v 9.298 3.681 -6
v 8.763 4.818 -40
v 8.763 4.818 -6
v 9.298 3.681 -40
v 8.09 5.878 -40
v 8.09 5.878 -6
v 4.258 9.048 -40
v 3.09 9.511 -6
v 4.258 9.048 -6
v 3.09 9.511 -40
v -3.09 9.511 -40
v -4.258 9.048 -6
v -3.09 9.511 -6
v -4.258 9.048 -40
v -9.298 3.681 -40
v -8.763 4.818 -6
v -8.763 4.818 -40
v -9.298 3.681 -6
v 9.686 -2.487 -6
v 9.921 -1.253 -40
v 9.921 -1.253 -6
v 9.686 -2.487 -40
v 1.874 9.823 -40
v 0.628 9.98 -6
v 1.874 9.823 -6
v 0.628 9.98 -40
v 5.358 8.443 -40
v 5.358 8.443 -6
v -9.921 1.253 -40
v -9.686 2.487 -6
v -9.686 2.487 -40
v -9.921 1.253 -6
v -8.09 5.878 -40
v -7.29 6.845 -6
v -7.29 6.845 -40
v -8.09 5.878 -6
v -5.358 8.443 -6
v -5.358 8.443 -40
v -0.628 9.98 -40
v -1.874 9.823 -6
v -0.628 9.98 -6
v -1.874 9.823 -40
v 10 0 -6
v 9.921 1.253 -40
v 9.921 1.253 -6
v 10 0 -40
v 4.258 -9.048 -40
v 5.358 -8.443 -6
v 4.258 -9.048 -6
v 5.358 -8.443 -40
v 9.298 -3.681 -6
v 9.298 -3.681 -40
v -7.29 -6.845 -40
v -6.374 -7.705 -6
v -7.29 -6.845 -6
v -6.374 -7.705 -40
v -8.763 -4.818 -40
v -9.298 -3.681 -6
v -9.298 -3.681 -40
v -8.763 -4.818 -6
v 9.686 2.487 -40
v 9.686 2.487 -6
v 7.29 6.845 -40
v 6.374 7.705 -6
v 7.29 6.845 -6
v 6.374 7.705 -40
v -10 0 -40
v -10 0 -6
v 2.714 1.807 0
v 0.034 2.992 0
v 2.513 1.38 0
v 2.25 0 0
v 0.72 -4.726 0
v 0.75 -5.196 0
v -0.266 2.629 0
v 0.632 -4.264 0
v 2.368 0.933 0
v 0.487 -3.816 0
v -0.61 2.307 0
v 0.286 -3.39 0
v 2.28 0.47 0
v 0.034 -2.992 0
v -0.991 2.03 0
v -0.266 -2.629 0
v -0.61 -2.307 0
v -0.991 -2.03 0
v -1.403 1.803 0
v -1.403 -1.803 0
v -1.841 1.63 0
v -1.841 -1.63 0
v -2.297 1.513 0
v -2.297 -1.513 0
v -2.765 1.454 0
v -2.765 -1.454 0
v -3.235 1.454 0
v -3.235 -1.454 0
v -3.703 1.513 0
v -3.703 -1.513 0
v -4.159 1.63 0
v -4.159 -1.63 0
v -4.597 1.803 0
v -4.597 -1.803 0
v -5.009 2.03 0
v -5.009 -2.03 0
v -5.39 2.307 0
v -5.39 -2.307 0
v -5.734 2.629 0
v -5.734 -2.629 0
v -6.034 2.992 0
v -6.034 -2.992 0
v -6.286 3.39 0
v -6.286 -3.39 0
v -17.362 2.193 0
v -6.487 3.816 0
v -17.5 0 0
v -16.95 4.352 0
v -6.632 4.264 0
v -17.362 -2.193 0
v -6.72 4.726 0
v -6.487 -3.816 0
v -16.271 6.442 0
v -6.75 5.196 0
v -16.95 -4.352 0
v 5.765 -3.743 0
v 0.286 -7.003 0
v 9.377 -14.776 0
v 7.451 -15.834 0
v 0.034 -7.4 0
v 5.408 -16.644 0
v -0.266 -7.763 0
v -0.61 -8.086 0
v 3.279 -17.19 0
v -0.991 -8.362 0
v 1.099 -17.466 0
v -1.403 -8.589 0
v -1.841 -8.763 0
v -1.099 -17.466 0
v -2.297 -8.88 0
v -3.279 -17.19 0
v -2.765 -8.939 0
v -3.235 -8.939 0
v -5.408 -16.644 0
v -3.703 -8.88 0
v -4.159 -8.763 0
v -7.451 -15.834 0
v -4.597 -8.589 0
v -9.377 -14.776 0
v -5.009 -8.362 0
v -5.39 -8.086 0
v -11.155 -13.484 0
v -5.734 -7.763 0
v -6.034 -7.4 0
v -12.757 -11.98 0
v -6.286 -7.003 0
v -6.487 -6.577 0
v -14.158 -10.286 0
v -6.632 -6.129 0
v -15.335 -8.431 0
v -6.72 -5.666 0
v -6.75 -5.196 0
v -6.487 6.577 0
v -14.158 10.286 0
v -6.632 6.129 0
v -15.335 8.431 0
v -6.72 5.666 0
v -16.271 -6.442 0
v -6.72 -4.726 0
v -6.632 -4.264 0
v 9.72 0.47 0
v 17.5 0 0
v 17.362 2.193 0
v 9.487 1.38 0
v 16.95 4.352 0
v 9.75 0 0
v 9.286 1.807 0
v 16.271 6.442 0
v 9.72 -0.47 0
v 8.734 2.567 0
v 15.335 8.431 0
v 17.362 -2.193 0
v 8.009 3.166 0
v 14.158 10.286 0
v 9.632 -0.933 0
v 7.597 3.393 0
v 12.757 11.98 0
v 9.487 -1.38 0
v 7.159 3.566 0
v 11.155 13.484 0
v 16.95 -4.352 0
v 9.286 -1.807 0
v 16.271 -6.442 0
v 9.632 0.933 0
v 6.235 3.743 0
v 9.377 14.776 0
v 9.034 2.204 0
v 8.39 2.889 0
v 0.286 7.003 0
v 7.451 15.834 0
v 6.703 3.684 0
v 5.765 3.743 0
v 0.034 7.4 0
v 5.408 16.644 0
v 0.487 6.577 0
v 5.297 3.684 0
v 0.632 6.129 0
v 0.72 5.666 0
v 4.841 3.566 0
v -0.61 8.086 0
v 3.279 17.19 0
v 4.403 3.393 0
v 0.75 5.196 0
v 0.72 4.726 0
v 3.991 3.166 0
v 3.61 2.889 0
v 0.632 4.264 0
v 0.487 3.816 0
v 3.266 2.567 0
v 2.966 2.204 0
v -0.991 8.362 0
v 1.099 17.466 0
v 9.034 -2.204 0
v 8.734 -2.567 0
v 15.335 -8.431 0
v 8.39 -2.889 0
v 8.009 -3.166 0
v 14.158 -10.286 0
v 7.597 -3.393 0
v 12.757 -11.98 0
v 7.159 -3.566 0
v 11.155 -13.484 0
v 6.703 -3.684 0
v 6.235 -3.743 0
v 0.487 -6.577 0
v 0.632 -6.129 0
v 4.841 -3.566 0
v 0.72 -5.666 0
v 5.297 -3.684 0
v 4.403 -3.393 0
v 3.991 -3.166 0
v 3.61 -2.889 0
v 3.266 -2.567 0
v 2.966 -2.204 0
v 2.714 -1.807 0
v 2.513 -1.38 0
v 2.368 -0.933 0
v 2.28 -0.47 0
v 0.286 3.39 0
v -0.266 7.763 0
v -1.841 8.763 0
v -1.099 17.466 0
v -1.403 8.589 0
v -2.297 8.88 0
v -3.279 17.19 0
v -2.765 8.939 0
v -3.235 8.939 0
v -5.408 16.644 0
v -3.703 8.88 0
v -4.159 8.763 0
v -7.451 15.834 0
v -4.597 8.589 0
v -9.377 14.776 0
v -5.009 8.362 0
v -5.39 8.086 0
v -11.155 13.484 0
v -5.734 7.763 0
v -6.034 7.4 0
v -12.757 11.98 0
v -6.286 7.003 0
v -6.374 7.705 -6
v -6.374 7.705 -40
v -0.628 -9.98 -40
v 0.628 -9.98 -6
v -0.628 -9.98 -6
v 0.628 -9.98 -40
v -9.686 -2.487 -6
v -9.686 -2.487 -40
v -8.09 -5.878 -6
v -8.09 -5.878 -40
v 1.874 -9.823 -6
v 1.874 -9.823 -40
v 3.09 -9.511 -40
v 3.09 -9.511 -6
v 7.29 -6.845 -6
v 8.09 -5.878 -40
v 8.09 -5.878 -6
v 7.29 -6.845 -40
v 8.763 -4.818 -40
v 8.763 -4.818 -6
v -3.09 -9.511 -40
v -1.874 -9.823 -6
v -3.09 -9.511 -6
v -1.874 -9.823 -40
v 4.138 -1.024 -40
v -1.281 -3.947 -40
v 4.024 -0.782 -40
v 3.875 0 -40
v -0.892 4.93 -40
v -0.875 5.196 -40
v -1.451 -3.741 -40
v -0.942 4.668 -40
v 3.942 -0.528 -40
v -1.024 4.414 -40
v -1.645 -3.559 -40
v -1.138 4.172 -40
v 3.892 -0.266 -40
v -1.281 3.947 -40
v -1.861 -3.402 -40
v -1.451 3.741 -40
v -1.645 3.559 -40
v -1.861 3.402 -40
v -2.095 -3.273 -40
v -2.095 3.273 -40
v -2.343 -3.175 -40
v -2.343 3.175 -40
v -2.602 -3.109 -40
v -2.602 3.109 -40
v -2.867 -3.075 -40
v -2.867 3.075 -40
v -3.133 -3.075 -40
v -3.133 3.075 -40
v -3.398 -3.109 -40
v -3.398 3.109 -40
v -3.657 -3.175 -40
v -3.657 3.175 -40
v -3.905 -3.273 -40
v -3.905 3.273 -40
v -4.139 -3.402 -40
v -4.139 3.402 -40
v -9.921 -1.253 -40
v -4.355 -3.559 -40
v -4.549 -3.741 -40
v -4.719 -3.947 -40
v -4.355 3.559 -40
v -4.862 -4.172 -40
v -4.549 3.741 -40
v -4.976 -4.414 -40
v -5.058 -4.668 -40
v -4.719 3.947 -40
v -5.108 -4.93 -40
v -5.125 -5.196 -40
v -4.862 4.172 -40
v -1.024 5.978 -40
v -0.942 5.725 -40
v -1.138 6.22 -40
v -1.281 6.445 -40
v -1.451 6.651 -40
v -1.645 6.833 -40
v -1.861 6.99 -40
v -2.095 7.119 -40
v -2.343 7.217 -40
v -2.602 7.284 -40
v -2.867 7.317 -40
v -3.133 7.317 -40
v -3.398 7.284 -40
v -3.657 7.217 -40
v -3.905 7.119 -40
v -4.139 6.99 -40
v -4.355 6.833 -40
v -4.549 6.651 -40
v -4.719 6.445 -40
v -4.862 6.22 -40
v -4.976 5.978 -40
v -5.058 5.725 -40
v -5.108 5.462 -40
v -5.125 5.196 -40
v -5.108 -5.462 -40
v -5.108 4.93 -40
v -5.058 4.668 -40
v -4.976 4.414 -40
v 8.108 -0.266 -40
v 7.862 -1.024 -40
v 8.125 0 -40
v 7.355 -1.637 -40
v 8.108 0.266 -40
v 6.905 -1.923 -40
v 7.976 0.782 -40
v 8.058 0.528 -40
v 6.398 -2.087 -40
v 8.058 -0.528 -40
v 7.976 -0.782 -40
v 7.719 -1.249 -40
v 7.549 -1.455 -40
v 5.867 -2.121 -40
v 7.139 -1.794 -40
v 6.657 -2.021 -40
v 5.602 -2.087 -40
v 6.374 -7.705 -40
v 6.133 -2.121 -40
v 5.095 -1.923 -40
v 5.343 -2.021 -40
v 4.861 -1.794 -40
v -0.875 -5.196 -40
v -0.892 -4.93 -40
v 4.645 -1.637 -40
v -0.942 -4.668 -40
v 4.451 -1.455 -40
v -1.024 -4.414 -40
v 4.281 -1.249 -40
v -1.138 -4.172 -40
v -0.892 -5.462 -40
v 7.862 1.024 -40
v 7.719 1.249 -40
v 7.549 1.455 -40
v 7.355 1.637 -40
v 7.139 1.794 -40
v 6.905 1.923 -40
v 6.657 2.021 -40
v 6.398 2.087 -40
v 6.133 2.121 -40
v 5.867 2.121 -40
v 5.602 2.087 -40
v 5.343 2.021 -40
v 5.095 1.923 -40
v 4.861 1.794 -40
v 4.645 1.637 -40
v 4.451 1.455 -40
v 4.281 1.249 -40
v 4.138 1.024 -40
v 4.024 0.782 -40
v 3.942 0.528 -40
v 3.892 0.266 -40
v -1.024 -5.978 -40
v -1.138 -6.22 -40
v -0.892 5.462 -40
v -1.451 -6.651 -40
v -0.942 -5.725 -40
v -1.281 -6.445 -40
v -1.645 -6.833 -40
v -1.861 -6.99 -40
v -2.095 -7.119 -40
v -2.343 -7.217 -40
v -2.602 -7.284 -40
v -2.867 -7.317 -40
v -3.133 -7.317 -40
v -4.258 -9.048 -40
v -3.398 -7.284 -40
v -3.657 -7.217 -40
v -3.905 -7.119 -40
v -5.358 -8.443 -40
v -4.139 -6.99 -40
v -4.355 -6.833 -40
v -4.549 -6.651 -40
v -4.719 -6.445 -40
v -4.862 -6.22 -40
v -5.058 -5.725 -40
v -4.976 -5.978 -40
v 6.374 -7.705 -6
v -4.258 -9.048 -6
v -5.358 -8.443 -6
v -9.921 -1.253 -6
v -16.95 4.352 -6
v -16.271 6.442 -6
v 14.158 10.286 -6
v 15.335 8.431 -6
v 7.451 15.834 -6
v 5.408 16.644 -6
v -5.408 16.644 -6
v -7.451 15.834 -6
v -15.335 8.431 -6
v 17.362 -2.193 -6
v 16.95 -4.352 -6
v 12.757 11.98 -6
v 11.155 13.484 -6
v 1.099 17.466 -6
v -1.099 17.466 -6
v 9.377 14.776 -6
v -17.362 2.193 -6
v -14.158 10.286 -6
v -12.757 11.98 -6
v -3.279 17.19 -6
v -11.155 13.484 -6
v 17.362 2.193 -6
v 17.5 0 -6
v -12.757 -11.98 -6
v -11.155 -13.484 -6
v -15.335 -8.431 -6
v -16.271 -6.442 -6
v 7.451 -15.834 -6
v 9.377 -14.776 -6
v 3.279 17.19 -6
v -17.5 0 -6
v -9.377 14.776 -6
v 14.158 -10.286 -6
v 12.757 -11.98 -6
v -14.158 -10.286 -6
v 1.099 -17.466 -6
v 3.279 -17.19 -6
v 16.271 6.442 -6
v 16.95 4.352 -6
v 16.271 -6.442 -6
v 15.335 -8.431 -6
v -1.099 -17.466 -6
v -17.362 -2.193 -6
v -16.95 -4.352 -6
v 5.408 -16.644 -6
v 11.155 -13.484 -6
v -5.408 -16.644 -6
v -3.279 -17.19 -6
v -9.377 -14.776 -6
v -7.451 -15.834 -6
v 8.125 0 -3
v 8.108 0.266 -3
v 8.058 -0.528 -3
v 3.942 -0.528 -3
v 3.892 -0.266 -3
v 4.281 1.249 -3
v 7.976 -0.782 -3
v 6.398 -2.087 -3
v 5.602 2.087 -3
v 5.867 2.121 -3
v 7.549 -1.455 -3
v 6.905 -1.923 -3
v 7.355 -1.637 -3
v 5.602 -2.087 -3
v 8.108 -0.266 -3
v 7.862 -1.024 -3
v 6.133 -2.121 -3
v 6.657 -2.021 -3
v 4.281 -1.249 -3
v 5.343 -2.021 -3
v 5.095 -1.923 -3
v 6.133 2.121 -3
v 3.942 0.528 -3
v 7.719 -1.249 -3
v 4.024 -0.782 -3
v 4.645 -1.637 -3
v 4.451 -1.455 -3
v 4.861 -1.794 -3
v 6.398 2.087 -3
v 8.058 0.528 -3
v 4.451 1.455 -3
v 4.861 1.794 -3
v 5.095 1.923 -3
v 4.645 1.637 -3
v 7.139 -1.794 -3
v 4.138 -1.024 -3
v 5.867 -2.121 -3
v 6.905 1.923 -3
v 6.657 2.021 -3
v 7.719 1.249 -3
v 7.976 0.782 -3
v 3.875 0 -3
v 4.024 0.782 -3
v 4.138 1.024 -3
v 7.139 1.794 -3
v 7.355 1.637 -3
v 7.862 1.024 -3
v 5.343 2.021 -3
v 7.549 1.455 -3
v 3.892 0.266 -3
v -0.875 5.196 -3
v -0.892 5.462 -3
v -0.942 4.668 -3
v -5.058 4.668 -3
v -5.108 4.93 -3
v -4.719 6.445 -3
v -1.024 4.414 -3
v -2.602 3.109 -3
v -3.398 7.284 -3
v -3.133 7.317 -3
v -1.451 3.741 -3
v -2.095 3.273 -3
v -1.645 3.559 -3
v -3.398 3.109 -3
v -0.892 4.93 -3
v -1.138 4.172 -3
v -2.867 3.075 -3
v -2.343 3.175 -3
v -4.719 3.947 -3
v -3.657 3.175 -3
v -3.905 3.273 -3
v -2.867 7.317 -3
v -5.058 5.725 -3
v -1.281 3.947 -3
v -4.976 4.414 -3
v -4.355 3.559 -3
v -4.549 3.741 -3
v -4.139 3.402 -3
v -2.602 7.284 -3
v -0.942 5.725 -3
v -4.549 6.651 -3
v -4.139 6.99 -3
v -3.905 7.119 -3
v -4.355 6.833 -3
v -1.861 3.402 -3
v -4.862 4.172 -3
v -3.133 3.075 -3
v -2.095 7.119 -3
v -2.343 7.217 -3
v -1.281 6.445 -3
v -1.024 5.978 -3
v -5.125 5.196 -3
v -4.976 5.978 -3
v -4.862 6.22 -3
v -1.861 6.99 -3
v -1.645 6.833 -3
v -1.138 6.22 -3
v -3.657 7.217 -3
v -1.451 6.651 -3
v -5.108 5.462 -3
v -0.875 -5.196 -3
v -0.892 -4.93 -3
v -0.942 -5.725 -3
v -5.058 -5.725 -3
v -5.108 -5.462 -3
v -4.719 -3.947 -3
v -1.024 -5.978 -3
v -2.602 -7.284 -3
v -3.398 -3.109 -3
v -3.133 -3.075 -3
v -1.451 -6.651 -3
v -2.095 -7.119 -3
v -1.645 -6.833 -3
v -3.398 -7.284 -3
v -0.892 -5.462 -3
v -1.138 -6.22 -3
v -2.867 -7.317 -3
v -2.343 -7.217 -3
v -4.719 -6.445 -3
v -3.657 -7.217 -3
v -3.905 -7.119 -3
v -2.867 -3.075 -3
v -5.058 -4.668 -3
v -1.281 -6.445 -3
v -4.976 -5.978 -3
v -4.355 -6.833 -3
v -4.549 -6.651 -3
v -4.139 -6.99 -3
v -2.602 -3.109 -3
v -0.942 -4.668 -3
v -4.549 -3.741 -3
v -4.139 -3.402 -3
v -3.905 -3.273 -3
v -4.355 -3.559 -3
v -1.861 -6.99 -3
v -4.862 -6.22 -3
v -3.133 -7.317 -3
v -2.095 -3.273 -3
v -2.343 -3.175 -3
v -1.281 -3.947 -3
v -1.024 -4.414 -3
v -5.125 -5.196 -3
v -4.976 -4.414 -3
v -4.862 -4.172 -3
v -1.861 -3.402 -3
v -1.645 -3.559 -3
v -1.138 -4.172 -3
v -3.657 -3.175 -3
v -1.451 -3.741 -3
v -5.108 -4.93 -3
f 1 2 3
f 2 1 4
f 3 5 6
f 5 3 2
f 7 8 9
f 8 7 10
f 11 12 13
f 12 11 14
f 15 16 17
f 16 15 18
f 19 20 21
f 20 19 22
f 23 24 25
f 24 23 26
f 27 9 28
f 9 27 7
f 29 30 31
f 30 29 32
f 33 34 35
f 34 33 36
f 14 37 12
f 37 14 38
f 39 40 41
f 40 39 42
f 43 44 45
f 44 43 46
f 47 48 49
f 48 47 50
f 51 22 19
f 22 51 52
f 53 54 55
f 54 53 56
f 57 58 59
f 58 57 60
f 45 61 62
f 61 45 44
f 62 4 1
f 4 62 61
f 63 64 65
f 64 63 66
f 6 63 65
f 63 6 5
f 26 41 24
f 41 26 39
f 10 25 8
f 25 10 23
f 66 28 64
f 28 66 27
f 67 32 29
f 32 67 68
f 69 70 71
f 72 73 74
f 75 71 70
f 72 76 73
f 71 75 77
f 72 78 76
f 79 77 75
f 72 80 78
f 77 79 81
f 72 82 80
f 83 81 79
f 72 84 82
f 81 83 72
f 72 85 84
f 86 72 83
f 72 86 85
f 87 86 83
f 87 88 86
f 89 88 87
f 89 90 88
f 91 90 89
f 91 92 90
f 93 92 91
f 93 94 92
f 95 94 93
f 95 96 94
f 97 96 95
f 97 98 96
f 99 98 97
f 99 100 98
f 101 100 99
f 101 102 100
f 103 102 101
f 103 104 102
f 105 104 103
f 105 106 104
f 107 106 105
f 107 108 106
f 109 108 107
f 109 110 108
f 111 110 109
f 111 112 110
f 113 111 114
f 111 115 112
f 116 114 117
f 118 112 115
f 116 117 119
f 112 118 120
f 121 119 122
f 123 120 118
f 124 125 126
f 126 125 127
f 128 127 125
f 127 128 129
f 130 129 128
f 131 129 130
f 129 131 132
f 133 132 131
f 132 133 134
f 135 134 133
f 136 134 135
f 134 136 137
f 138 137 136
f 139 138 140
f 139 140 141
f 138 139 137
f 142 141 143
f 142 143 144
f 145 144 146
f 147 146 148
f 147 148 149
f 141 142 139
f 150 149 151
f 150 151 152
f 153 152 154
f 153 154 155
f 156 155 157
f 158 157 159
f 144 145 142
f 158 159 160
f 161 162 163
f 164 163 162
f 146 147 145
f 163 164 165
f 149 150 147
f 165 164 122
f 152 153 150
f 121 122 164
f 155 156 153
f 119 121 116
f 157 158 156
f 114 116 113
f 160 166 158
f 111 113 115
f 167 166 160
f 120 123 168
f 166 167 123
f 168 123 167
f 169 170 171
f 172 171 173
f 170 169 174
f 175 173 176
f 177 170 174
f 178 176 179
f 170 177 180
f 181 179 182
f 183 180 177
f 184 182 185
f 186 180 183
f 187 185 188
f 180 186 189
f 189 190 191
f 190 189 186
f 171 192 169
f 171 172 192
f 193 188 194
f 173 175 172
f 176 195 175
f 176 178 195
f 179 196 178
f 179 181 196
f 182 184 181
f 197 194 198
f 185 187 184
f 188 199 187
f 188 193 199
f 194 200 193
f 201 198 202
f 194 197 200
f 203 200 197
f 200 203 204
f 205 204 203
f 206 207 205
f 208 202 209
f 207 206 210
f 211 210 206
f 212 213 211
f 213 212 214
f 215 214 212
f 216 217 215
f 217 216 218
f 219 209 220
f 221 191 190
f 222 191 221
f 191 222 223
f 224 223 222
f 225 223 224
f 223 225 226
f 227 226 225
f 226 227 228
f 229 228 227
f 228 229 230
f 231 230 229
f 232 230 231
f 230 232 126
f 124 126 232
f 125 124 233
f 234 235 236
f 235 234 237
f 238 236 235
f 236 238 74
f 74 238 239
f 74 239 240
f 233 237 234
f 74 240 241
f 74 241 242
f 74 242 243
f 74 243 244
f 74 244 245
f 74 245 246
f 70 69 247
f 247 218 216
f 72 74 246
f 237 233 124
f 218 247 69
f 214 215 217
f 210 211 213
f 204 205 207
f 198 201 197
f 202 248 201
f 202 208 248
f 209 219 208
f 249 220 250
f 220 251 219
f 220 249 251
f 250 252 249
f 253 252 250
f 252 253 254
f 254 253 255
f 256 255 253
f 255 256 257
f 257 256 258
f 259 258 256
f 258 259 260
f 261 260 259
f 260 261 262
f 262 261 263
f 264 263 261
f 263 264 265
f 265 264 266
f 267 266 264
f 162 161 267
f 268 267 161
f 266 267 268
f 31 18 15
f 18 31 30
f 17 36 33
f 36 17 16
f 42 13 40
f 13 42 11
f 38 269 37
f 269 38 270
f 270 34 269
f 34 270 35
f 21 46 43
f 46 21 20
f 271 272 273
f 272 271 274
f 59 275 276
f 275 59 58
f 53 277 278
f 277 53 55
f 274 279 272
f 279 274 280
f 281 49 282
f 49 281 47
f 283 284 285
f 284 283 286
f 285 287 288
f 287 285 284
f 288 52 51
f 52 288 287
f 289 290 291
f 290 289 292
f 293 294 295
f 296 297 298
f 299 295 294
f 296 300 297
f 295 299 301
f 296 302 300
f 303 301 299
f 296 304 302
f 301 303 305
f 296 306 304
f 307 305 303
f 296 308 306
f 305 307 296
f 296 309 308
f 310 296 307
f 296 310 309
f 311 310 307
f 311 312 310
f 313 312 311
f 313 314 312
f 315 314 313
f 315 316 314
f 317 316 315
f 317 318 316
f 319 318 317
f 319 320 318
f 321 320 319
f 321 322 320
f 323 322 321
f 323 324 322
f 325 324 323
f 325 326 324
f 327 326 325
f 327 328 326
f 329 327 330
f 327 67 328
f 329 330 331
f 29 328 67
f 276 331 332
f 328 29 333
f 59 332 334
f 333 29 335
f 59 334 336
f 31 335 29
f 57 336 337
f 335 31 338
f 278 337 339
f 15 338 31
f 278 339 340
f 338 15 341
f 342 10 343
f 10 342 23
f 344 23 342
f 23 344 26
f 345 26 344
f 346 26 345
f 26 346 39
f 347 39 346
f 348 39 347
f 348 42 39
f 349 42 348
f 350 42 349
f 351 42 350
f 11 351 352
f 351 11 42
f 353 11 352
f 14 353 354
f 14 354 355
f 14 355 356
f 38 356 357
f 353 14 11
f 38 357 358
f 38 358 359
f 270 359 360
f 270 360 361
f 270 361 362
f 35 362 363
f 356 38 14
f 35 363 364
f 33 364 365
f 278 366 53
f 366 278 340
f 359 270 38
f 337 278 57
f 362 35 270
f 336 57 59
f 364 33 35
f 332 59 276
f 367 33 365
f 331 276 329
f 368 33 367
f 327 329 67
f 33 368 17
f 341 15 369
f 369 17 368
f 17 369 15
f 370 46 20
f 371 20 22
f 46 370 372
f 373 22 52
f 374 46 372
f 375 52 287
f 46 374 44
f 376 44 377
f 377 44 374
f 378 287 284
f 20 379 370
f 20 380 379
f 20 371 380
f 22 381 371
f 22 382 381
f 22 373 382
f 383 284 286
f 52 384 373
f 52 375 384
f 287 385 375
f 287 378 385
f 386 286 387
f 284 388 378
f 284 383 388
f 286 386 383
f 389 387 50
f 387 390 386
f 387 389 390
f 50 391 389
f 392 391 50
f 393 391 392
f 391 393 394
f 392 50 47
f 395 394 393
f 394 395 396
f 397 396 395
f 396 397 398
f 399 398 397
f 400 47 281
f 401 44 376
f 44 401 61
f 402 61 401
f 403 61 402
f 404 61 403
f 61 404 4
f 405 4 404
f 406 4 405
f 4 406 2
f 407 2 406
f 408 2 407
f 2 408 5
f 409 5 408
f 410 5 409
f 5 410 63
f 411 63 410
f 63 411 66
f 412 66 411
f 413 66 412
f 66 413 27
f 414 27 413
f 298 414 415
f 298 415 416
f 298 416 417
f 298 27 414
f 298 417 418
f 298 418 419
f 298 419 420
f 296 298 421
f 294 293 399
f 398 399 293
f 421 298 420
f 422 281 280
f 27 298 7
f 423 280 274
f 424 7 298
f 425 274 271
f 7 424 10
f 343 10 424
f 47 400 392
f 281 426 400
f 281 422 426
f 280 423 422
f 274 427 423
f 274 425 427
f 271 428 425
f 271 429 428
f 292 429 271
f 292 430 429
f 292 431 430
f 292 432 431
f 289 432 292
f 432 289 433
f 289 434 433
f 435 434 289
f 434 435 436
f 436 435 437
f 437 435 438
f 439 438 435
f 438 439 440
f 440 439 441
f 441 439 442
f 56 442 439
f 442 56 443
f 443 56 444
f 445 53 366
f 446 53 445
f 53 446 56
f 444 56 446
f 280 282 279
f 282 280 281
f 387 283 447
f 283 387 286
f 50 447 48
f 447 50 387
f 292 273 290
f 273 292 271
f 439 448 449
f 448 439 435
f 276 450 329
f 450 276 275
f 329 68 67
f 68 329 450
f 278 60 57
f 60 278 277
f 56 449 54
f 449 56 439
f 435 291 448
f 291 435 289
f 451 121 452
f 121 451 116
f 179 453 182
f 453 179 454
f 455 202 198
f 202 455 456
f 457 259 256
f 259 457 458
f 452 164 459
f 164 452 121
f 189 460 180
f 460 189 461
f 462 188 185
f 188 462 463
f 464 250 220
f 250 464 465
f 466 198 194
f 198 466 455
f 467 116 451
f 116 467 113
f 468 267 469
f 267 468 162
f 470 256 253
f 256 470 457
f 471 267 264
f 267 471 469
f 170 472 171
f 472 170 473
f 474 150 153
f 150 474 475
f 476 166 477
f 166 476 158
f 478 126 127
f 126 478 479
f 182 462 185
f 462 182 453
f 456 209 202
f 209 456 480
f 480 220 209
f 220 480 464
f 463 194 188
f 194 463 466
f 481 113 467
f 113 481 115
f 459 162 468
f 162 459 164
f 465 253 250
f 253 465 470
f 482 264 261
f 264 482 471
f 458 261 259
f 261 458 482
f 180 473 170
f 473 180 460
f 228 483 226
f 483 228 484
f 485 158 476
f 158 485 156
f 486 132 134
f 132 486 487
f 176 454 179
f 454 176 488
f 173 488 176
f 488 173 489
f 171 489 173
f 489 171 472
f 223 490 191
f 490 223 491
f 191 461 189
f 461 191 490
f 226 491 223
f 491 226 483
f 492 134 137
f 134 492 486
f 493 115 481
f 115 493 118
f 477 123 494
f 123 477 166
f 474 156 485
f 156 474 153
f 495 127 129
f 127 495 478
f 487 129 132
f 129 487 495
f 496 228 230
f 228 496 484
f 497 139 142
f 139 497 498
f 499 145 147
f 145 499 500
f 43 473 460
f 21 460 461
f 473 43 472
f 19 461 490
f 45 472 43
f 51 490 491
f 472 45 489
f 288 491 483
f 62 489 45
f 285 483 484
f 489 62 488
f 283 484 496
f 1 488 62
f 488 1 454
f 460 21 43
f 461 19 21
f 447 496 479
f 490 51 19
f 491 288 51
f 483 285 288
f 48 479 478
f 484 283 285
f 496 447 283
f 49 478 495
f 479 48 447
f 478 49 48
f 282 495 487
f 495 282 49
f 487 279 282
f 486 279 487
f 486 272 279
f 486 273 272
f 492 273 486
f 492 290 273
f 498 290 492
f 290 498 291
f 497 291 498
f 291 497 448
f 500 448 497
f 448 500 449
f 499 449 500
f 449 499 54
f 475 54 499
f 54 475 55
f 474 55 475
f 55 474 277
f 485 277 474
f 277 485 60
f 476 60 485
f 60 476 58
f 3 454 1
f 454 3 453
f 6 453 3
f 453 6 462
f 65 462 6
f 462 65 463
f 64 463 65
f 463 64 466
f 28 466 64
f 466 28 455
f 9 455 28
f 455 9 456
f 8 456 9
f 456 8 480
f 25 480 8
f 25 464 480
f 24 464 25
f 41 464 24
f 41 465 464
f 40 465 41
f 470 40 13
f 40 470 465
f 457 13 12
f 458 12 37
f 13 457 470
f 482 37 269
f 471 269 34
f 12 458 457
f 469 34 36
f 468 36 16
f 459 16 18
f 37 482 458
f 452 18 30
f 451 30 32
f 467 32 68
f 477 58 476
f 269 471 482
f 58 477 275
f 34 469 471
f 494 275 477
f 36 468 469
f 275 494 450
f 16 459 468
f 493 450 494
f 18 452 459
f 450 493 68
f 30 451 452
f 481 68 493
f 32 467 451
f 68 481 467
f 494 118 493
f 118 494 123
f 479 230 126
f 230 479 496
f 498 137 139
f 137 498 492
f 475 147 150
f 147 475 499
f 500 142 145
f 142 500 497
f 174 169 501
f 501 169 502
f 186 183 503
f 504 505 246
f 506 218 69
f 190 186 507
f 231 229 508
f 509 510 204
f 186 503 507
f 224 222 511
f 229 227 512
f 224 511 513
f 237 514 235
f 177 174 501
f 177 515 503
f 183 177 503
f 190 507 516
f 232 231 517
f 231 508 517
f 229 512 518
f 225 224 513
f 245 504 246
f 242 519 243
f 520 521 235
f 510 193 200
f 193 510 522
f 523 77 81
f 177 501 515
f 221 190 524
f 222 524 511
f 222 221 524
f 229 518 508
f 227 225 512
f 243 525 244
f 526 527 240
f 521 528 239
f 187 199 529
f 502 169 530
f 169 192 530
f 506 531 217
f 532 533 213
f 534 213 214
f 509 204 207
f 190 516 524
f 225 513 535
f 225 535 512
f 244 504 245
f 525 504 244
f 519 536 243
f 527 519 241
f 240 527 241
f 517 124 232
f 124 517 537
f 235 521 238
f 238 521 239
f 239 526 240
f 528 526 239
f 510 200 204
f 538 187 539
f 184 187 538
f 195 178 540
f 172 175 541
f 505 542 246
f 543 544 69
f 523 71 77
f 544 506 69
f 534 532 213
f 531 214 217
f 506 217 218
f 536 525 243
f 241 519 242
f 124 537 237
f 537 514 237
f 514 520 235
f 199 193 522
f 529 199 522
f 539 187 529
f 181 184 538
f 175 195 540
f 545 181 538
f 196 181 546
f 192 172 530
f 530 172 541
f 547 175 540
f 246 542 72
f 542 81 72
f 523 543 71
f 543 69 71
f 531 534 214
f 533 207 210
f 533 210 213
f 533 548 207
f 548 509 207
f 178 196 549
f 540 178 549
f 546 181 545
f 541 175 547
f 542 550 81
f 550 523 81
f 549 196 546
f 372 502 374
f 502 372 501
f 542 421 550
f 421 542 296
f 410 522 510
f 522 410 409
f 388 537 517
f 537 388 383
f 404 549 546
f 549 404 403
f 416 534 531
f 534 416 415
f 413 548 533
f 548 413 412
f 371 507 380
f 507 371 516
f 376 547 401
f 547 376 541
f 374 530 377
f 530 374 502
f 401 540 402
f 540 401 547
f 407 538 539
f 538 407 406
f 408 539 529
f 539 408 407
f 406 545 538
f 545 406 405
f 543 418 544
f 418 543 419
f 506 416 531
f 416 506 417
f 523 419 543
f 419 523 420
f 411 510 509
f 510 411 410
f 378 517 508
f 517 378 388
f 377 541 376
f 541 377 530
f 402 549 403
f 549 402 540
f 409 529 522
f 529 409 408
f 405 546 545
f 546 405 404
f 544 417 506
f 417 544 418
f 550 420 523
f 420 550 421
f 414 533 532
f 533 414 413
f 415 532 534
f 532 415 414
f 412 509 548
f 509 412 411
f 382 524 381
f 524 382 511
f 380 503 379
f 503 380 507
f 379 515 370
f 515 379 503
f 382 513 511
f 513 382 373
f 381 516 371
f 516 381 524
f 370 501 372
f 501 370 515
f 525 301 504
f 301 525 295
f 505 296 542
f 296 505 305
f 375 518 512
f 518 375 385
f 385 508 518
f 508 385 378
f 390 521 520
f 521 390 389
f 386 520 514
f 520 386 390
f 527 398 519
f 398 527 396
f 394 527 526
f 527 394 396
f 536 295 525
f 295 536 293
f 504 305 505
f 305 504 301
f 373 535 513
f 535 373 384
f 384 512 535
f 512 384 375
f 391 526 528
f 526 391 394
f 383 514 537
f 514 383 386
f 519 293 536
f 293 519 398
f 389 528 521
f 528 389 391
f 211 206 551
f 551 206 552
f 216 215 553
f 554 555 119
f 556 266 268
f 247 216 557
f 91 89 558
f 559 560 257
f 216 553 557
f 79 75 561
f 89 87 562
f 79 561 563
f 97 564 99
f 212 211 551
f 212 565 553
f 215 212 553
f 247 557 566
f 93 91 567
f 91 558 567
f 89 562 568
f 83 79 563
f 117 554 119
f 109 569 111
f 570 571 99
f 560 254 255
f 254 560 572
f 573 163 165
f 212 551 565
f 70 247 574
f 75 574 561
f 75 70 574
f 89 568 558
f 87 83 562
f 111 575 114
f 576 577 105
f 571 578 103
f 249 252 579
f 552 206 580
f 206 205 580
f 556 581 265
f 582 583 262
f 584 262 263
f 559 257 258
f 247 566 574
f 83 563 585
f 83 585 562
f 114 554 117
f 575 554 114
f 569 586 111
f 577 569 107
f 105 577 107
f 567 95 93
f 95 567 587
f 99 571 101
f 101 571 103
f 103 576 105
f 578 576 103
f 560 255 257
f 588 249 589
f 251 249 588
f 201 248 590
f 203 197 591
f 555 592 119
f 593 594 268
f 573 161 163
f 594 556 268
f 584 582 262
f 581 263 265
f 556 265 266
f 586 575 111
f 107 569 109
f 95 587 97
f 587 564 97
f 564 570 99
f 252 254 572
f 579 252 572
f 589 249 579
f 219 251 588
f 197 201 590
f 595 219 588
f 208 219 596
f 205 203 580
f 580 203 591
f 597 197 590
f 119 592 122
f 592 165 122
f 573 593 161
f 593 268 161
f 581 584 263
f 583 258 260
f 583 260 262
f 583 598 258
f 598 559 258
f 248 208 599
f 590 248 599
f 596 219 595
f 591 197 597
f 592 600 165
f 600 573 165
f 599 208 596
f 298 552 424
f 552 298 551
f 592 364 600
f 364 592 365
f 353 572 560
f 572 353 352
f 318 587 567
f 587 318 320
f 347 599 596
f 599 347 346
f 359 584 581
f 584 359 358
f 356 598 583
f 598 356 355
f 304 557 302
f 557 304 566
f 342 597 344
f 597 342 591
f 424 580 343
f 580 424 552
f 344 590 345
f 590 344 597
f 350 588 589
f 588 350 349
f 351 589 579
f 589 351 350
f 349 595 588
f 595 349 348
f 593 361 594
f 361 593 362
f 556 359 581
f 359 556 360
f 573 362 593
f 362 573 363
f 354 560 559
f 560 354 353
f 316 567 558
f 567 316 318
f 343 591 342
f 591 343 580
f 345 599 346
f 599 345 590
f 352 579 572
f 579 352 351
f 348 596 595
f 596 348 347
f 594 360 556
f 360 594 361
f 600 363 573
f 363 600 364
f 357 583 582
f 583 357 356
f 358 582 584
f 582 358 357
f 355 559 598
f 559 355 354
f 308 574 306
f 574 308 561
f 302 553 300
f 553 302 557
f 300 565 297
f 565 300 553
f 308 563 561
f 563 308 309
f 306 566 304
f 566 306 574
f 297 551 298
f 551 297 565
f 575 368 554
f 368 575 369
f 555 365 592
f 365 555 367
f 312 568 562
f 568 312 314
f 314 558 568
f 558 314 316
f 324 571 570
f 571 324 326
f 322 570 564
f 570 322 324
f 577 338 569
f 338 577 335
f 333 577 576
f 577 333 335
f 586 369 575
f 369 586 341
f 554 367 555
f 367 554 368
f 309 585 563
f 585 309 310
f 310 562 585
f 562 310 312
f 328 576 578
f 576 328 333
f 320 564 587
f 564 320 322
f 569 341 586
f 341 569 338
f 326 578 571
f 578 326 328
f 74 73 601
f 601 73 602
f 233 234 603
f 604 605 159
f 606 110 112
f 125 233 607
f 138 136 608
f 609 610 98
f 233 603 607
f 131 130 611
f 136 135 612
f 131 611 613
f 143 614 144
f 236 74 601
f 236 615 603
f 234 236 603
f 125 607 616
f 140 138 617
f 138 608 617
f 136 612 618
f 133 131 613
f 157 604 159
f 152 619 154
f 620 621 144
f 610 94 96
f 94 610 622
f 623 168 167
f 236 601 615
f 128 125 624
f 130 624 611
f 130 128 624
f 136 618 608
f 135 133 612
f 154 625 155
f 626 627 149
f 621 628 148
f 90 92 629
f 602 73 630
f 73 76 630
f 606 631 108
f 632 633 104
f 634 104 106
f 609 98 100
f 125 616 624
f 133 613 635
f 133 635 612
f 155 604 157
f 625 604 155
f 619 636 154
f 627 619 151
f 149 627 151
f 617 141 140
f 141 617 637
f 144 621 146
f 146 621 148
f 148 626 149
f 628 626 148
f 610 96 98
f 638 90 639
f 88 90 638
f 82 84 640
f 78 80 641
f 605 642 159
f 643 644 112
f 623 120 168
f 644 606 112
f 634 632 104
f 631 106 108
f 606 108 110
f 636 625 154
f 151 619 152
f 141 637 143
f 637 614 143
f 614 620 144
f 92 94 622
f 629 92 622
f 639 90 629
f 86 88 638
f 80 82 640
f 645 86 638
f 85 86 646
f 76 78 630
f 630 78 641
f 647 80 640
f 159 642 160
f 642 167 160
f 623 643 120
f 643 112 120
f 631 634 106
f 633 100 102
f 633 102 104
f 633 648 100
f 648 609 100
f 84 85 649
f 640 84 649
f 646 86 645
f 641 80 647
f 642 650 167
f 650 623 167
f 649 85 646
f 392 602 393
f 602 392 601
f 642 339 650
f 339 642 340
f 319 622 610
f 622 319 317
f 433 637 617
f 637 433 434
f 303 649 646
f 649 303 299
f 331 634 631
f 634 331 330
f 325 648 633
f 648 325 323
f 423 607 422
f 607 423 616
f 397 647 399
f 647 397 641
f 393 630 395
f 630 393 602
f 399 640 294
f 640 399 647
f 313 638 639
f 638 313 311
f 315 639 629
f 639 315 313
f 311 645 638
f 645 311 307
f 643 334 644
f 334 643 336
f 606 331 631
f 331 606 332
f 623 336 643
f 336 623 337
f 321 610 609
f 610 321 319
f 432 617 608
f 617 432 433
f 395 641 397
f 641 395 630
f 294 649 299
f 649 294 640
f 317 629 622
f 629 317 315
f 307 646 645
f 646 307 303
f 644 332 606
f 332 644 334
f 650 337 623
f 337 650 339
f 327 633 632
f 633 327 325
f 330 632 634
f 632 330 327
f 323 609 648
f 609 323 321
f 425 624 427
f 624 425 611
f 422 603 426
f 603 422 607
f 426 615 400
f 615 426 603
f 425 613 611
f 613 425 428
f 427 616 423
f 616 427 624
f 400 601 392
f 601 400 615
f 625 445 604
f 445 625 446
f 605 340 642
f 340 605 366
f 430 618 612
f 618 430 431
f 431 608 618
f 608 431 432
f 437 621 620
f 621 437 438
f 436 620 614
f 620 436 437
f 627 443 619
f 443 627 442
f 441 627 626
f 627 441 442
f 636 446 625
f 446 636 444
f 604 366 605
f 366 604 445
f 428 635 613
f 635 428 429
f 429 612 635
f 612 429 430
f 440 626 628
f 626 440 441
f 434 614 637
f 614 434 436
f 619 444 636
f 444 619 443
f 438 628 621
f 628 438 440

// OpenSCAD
$fn = 50;


difference() {
	union() {
		translate(v = [0, 0, -40.0000000000]) {
			cylinder(h = 40, r = 10.0000000000);
		}
		translate(v = [0, 0, -6.0000000000]) {
			cylinder(h = 6, r = 17.5000000000);
		}
	}
	union() {
		translate(v = [6.0000000000, 0.0000000000, 0]) {
			rotate(a = [0, 0, 0]) {
				difference() {
					union() {
						#translate(v = [0, 0, -40.0000000000]) {
							cylinder(h = 40, r = 2.0000000000);
						}
						#translate(v = [0, 0, -3]) {
							cylinder(h = 3, r = 10.0000000000, r1 = 2.1250000000, r2 = 3.7500000000);
						}
						#translate(v = [0, 0, -40.0000000000]) {
							cylinder(h = 40, r = 2.1250000000);
						}
						#translate(v = [0, 0, -40.0000000000]) {
							cylinder(h = 40, r = 2.0000000000);
						}
					}
					union();
				}
			}
		}
		translate(v = [-3.0000000000, 5.1961524227, 0]) {
			rotate(a = [0, 0, 0]) {
				difference() {
					union() {
						#translate(v = [0, 0, -40.0000000000]) {
							cylinder(h = 40, r = 2.0000000000);
						}
						#translate(v = [0, 0, -3]) {
							cylinder(h = 3, r = 10.0000000000, r1 = 2.1250000000, r2 = 3.7500000000);
						}
						#translate(v = [0, 0, -40.0000000000]) {
							cylinder(h = 40, r = 2.1250000000);
						}
						#translate(v = [0, 0, -40.0000000000]) {
							cylinder(h = 40, r = 2.0000000000);
						}
					}
					union();
				}
			}
		}
		translate(v = [-3.0000000000, -5.1961524227, 0]) {
			rotate(a = [0, 0, 0]) {
				difference() {
					union() {
						#translate(v = [0, 0, -40.0000000000]) {
							cylinder(h = 40, r = 2.0000000000);
						}
						#translate(v = [0, 0, -3]) {
							cylinder(h = 3, r = 10.0000000000, r1 = 2.1250000000, r2 = 3.7500000000);
						}
						#translate(v = [0, 0, -40.0000000000]) {
							cylinder(h = 40, r = 2.1250000000);
						}
						#translate(v = [0, 0, -40.0000000000]) {
							cylinder(h = 40, r = 2.0000000000);
						}
					}
					union();
				}
			}
		}
	}
}
